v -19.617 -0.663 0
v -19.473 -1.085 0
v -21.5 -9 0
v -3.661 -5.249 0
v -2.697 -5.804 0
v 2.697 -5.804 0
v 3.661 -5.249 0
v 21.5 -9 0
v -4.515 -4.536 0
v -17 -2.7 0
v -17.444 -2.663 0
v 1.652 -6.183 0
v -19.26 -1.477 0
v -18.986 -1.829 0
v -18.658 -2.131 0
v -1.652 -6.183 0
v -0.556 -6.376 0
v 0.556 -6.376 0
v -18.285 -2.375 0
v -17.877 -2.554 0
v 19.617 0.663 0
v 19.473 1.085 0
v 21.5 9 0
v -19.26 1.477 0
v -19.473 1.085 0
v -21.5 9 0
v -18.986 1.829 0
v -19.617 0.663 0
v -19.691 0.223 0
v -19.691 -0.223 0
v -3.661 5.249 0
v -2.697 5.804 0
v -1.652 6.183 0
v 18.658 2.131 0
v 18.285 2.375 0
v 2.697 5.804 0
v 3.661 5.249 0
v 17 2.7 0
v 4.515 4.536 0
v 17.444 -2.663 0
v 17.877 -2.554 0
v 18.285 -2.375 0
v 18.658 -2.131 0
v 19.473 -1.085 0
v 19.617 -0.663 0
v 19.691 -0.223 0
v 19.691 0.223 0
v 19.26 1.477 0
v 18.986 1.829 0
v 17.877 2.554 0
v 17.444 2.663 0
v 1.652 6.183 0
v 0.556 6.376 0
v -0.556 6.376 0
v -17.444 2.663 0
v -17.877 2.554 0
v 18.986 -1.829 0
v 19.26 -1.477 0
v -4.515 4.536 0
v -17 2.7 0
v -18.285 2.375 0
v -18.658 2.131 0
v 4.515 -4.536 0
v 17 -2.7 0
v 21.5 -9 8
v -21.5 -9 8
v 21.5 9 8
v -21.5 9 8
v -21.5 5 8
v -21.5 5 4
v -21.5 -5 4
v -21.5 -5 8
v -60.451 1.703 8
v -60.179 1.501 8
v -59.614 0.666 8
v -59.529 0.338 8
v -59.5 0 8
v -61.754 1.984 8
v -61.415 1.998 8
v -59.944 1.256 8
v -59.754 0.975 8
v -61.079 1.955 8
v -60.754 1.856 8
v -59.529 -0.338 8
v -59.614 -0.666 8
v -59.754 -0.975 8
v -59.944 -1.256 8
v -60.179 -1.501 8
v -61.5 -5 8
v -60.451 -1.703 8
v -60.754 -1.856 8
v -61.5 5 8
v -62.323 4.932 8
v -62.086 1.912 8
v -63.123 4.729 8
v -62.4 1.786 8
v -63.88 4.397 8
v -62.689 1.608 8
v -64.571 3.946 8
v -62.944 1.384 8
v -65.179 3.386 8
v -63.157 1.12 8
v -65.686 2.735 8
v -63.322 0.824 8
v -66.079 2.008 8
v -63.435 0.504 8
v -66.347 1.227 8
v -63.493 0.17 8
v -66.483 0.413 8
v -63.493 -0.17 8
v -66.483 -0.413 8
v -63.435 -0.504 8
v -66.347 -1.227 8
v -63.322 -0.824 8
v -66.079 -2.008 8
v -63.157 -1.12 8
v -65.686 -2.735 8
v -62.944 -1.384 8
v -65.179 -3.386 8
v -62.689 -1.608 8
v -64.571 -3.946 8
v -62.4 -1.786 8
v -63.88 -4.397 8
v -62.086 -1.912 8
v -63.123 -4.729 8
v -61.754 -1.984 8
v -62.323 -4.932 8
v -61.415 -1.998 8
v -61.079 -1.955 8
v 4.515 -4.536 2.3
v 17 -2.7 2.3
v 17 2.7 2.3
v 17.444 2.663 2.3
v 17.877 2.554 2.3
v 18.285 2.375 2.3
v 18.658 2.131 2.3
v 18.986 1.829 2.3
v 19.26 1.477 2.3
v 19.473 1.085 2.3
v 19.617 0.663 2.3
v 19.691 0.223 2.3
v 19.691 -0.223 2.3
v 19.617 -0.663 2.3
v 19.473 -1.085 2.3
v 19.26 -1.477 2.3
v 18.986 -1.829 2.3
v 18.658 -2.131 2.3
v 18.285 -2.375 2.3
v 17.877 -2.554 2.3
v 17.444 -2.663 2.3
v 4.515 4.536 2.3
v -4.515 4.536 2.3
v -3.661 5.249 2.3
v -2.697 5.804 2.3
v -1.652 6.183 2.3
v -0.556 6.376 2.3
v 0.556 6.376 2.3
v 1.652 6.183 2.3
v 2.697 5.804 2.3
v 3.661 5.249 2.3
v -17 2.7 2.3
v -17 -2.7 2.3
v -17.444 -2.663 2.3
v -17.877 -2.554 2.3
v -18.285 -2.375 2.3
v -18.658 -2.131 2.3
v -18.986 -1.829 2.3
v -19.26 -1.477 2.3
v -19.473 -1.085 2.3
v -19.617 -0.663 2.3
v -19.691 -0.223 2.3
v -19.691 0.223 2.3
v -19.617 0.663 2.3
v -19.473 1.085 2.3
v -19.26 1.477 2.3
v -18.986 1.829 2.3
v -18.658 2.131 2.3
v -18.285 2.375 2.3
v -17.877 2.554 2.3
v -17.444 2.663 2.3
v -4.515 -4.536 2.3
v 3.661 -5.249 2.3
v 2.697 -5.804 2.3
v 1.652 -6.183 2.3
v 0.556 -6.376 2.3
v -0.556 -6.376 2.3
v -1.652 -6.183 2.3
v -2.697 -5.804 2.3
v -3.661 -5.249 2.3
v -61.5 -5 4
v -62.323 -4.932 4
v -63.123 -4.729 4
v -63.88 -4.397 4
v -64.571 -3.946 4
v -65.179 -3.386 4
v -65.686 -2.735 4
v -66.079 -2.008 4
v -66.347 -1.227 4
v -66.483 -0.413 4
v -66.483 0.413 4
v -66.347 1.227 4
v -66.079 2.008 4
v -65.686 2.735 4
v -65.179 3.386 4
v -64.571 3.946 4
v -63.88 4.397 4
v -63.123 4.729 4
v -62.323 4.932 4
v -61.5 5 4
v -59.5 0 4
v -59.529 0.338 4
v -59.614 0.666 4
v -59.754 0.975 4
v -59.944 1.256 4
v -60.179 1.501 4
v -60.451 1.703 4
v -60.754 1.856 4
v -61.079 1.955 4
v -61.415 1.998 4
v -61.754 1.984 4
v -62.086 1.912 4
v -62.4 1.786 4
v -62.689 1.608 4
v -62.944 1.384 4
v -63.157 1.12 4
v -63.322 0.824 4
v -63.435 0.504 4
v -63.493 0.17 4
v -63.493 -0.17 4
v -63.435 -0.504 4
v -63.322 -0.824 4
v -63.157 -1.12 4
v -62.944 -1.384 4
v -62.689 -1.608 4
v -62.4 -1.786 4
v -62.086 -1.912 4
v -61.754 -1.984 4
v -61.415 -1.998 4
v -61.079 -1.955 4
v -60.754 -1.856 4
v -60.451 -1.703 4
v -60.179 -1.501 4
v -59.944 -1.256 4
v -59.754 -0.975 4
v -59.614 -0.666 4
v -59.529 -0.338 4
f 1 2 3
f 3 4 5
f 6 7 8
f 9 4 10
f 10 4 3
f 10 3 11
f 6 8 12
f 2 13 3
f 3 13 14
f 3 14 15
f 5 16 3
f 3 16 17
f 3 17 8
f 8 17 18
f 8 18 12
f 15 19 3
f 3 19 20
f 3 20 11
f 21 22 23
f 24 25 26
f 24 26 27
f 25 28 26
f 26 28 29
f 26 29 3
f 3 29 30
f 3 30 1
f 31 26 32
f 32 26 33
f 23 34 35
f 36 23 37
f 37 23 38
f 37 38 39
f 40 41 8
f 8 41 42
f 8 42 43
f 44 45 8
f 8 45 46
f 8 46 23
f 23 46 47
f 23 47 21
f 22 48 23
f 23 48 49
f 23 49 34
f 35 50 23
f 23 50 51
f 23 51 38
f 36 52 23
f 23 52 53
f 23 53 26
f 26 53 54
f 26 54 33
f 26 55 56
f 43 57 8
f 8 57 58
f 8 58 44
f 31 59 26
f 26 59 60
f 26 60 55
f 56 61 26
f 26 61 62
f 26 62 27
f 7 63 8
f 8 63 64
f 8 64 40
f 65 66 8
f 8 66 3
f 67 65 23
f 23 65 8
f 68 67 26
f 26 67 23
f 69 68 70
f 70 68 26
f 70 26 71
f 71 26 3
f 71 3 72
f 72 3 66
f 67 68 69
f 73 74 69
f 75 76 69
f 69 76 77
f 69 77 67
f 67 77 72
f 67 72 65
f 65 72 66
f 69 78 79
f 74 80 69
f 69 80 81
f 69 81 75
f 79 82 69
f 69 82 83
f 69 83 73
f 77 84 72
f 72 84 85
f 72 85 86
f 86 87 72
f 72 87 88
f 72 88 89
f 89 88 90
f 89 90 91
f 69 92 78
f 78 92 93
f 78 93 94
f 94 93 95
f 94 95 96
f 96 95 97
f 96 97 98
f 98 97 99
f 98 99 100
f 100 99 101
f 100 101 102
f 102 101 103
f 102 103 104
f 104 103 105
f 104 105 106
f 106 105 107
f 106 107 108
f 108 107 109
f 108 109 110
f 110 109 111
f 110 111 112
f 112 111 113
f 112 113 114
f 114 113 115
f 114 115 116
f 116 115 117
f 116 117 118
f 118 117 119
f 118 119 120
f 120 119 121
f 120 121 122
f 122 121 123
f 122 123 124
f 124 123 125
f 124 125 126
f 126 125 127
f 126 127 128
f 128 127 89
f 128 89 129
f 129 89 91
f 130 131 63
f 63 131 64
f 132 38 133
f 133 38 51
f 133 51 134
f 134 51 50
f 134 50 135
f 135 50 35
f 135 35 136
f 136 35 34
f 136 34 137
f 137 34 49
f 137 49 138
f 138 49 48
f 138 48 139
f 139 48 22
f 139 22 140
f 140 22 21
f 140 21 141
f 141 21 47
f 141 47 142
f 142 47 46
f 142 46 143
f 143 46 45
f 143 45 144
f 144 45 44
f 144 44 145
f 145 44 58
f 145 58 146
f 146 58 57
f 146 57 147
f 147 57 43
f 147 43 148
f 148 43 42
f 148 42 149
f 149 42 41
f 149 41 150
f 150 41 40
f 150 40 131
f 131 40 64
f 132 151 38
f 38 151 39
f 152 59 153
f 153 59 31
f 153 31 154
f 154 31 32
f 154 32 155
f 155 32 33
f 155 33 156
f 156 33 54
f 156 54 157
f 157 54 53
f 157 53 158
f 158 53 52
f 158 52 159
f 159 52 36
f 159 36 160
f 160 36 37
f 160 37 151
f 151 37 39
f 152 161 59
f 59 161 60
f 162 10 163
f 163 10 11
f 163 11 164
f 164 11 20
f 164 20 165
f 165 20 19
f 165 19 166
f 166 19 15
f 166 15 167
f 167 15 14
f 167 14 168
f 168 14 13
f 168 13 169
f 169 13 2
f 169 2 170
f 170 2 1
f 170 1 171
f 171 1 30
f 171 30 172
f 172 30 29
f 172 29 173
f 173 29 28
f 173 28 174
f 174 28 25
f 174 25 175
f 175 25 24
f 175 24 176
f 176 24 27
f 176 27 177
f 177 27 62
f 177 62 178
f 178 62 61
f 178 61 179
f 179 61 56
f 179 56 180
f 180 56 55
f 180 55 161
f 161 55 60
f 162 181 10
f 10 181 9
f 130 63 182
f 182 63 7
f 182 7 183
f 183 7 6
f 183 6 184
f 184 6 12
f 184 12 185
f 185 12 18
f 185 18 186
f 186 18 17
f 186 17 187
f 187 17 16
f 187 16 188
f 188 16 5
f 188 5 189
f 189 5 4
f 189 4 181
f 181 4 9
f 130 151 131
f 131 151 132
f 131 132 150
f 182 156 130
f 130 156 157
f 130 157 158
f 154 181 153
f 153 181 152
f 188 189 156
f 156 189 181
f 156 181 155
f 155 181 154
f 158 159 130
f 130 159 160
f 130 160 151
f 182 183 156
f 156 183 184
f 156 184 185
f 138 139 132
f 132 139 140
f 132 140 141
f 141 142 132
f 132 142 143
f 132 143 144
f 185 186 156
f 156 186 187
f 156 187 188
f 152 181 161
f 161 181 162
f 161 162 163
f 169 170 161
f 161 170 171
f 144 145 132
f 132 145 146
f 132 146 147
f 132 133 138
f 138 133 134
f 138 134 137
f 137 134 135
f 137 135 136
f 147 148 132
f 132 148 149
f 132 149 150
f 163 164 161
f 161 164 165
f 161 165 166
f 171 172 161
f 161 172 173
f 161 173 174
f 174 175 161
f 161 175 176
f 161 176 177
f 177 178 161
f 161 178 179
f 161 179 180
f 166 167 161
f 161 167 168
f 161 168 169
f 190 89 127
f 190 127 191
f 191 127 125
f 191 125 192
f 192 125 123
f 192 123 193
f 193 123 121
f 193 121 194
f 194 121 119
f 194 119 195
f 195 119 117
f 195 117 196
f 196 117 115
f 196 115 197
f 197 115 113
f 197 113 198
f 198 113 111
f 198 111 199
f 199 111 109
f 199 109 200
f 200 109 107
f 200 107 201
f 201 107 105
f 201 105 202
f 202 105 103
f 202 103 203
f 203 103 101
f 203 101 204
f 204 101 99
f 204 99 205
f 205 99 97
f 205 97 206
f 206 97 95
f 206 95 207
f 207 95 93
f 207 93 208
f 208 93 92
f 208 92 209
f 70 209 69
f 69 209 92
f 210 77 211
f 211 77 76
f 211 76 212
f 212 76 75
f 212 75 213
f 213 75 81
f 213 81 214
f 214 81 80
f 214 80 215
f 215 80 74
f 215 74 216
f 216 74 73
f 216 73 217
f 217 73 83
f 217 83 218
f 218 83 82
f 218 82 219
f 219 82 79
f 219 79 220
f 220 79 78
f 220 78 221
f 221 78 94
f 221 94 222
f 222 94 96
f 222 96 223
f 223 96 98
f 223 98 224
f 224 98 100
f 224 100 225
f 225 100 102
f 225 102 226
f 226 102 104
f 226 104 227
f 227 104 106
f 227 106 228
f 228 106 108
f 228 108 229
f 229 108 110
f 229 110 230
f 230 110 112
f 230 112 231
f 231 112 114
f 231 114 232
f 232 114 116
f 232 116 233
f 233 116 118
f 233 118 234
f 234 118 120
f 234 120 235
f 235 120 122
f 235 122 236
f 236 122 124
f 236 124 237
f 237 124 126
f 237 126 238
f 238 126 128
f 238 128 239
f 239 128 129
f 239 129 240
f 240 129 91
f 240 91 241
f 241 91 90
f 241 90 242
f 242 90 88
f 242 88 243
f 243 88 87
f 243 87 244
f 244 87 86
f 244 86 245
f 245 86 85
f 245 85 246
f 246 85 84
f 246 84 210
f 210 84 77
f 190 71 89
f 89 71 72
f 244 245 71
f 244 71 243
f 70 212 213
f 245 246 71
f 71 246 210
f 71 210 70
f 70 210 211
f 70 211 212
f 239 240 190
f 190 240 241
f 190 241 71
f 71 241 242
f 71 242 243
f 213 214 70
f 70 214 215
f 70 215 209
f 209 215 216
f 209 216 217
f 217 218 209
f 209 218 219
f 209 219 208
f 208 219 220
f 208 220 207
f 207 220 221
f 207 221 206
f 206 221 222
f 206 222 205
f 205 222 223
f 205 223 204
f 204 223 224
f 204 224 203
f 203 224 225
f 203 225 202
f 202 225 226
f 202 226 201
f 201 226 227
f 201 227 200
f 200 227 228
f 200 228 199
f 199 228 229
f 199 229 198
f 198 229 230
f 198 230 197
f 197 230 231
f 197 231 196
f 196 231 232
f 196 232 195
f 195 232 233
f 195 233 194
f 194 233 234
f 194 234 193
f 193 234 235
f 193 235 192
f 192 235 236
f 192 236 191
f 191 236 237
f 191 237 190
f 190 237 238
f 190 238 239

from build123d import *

# Parameters (mm, degrees)
SKETCH1_W           = 43
SKETCH1_H           = 18
BOSS_EXTRUDE1_DEPTH = 8
CAVITY2_DEPTH       = 2.3
BOSS_EXTRUDE2_DEPTH = 4


# Read off the part's stored shape, not the designer's step: Cavity2
with BuildPart() as part:
    # Sketch1 → Boss-Extrude1 (new body)
    with BuildSketch(Plane.XY):
        Rectangle(SKETCH1_W, SKETCH1_H)
    extrude(amount=BOSS_EXTRUDE1_DEPTH)

    # Cavity2 outline → Cavity2 (cut)
    with BuildSketch(Plane.XY):
        with BuildLine():
            ThreePointArc((-4.514897629, -4.536044466), (0, -6.4), (4.514897629, -4.536044466))
            Line((4.514897629, -4.536044466), (17, -2.7))
            ThreePointArc((17, -2.7), (19.7, 0), (17, 2.7))
            Line((17, 2.7), (4.514897629, 4.536044466))
            ThreePointArc((4.514897629, 4.536044466), (0, 6.4), (-4.514897629, 4.536044466))
            Line((-4.514897629, 4.536044466), (-17, 2.7))
            ThreePointArc((-17, 2.7), (-19.7, 0), (-17, -2.7))
            Line((-17, -2.7), (-4.514897629, -4.536044466))
        make_face()
    extrude(amount=CAVITY2_DEPTH, mode=Mode.SUBTRACT)

    # Sketch4 → Boss-Extrude2 (add)
    with BuildSketch(Plane.XY.offset(8)):
        with BuildLine():
            ThreePointArc((-56.5, 0), (-57.964466094, 3.535533906), (-61.5, 5))
            Line((-61.5, 5), (-61.5, 2))
            ThreePointArc((-61.5, 2), (-60.085786438, 1.414213562), (-59.5, 0))
            ThreePointArc((-59.5, 0), (-60.085786438, -1.414213562), (-61.5, -2))
            Line((-61.5, -2), (-61.5, -5))
            ThreePointArc((-61.5, -5), (-57.964466094, -3.535533906), (-56.5, 0))
        make_face()
        with BuildLine():
            Line((-61.5, 2), (-61.5, 5))
            ThreePointArc((-61.5, 5), (-66.5, 0), (-61.5, -5))
            Line((-61.5, -5), (-61.5, -2))
            ThreePointArc((-61.5, -2), (-63.5, 0), (-61.5, 2))
        make_face()
        with BuildLine():
            Line((-21.5, -5), (-21.5, 5))
            Line((-21.5, 5), (-61.5, 5))
            ThreePointArc((-61.5, 5), (-57.964466094, 3.535533906), (-56.5, 0))
            ThreePointArc((-56.5, 0), (-57.964466094, -3.535533906), (-61.5, -5))
            Line((-61.5, -5), (-21.5, -5))
        make_face()
    extrude(amount=-BOSS_EXTRUDE2_DEPTH)


solid = part.part
